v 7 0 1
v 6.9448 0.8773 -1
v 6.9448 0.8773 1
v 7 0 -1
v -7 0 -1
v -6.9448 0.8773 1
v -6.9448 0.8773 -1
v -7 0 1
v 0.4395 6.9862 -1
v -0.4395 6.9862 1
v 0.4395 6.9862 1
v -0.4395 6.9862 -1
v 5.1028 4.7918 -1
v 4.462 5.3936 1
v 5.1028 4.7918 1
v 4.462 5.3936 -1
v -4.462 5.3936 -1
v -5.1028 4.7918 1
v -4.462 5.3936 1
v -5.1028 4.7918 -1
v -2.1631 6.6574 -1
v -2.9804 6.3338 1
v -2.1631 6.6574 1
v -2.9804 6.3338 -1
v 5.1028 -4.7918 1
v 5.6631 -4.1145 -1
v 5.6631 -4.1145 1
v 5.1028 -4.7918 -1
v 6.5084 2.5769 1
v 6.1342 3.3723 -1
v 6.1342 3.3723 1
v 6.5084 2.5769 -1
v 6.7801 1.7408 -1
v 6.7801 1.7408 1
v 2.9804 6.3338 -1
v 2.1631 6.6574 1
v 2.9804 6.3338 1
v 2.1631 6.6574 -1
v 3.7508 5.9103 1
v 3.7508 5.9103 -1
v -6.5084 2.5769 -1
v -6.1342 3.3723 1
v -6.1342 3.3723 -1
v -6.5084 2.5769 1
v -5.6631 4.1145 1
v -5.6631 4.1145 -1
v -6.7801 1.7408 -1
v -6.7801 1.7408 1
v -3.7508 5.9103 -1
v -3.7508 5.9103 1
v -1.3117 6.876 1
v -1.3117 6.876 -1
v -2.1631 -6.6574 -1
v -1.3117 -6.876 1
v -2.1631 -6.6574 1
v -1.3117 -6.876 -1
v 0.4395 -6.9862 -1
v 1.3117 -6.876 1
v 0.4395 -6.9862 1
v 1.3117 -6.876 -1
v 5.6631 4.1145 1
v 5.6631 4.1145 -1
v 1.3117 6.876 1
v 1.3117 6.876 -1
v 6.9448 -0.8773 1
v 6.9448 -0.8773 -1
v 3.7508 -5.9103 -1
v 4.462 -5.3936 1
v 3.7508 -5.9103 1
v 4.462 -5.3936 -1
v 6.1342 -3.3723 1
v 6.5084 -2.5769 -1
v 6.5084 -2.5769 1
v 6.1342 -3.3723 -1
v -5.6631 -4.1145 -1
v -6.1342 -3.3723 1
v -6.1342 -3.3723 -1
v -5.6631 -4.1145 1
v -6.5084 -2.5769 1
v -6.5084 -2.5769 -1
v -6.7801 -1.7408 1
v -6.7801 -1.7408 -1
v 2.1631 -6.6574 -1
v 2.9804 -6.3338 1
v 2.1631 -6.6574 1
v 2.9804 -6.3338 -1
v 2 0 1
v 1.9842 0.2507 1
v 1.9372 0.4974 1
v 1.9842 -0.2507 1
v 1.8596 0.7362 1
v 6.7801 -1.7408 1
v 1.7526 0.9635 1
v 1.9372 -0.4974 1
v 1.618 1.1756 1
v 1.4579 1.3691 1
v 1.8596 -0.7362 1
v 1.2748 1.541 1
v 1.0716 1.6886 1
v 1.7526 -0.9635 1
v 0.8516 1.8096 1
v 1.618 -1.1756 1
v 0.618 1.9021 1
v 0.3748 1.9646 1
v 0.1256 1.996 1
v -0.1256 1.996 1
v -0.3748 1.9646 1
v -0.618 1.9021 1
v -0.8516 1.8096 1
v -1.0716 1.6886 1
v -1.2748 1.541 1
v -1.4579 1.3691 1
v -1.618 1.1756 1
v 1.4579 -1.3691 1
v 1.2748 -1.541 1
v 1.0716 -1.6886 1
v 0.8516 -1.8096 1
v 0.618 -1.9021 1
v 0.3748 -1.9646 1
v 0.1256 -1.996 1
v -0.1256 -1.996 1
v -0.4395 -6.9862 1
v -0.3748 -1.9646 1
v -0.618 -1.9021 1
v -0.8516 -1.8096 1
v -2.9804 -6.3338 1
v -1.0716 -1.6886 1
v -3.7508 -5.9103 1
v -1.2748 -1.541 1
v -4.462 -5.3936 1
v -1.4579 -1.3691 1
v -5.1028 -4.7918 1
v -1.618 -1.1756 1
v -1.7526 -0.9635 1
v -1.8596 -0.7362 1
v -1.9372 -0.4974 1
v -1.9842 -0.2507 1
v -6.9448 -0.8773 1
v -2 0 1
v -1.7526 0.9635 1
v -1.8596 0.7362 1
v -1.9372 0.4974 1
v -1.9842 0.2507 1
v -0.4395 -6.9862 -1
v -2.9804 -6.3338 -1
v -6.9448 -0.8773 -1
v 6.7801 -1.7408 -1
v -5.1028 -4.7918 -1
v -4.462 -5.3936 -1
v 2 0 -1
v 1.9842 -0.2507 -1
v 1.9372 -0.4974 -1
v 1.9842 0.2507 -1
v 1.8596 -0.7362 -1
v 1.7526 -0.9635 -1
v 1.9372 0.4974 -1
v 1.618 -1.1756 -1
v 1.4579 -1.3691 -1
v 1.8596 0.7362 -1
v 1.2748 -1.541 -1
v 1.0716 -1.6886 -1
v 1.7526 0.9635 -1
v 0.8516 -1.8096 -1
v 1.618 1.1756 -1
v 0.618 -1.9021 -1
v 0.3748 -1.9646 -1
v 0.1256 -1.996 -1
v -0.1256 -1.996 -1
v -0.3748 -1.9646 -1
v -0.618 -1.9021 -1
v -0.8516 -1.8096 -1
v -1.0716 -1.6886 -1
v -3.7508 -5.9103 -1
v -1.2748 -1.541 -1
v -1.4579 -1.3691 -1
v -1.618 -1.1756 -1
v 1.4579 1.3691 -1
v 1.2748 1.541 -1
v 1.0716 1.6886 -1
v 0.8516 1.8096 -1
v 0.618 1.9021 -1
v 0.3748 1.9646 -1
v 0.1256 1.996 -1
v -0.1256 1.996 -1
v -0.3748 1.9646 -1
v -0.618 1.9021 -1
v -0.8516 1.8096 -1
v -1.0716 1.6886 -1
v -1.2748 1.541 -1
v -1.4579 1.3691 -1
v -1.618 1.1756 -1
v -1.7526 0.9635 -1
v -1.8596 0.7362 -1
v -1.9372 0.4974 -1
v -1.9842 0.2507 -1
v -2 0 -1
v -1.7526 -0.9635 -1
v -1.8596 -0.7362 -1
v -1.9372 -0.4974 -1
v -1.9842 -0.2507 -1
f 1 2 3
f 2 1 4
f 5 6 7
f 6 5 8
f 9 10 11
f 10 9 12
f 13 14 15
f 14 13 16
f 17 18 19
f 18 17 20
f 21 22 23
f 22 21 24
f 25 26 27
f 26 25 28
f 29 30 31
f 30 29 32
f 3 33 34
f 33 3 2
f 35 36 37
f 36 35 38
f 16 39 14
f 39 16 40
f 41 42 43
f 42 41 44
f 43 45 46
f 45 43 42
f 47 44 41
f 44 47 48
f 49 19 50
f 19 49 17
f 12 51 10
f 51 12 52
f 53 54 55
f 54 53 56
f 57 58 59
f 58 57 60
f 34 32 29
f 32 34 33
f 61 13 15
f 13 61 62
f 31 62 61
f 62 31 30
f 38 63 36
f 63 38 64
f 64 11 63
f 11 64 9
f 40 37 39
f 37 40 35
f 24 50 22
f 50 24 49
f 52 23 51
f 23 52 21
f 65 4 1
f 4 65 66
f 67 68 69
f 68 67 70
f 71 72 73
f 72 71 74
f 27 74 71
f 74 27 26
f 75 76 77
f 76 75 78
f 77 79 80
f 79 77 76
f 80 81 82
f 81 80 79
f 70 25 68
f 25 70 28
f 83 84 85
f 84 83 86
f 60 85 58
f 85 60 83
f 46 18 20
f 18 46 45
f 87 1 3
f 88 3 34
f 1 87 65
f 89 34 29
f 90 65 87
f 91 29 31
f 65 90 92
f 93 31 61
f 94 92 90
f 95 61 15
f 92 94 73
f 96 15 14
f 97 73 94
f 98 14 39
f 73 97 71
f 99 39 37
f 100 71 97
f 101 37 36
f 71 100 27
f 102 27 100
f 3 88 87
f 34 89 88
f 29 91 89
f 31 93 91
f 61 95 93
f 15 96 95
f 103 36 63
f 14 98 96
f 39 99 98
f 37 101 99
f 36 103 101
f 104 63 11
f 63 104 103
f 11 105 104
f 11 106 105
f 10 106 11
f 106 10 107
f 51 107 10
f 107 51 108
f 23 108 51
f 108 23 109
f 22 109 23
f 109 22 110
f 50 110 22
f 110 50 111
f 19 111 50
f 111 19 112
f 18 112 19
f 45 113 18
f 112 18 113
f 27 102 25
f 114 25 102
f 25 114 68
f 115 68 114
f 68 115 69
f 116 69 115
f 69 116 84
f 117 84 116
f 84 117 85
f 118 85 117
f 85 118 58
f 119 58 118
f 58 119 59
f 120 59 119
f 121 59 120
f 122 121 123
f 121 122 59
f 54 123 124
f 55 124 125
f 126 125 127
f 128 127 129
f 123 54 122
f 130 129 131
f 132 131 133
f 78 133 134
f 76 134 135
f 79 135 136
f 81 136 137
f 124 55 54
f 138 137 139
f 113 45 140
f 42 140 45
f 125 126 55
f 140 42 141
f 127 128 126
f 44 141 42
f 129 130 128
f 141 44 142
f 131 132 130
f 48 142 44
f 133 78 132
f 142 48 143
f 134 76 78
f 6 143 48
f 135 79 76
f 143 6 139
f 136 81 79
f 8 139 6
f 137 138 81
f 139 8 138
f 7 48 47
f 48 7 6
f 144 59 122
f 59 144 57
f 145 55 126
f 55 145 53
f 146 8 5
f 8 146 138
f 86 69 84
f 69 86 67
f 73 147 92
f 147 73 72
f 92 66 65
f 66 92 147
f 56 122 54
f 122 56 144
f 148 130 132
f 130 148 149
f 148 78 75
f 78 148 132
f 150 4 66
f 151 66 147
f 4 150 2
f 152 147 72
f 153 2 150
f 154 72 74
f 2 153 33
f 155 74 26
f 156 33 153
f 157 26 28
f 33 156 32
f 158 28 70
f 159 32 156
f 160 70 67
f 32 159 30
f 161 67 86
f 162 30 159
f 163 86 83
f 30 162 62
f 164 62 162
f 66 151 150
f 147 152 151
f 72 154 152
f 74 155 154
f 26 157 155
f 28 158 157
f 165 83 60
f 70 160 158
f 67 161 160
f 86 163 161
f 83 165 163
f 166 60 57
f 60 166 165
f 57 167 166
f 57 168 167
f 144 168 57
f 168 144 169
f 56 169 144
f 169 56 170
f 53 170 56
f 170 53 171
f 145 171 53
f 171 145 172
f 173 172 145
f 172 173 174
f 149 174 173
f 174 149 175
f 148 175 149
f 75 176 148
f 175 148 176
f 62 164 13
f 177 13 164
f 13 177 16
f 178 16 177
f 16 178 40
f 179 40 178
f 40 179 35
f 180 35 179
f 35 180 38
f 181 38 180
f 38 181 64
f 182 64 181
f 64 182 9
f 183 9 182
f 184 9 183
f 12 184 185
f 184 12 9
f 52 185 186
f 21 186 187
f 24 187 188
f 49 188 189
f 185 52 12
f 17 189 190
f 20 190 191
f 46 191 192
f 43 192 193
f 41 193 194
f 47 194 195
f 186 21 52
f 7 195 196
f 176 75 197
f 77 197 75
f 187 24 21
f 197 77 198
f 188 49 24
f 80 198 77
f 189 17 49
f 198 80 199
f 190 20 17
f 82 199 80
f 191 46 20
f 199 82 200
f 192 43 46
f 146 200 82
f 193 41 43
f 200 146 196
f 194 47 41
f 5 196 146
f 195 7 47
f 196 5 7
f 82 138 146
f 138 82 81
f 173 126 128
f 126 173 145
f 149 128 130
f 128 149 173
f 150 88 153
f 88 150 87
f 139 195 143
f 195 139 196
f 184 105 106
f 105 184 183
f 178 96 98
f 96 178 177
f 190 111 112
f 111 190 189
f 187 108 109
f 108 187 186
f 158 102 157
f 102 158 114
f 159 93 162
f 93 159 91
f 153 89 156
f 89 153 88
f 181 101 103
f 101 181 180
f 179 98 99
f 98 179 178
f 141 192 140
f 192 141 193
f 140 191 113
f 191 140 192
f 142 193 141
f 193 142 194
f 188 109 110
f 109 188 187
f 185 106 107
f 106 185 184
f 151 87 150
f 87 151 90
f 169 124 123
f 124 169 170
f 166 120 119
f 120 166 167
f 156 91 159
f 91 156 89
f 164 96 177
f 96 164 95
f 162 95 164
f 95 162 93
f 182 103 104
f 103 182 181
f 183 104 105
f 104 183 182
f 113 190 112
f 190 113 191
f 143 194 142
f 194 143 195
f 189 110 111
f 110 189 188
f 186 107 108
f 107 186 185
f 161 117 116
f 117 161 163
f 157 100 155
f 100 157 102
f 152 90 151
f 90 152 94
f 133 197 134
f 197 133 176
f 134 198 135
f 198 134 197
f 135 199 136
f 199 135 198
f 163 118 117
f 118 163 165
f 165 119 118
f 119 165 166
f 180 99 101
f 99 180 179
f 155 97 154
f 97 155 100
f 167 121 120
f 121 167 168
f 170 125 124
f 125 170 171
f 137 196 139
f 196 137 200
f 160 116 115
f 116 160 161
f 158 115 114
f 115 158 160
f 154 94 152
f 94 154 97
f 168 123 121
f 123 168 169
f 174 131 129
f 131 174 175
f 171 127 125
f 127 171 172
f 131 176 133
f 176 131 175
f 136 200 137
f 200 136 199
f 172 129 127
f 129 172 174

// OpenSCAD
$fn = 50;


difference() {
	union() {
		translate(v = [0, 0, -1.0000000000]) {
			cylinder(h = 2, r = 7.0000000000);
		}
	}
	union() {
		translate(v = [0, 0, -100.0000000000]) {
			cylinder(h = 200, r = 2.0000000000);
		}
	}
}
